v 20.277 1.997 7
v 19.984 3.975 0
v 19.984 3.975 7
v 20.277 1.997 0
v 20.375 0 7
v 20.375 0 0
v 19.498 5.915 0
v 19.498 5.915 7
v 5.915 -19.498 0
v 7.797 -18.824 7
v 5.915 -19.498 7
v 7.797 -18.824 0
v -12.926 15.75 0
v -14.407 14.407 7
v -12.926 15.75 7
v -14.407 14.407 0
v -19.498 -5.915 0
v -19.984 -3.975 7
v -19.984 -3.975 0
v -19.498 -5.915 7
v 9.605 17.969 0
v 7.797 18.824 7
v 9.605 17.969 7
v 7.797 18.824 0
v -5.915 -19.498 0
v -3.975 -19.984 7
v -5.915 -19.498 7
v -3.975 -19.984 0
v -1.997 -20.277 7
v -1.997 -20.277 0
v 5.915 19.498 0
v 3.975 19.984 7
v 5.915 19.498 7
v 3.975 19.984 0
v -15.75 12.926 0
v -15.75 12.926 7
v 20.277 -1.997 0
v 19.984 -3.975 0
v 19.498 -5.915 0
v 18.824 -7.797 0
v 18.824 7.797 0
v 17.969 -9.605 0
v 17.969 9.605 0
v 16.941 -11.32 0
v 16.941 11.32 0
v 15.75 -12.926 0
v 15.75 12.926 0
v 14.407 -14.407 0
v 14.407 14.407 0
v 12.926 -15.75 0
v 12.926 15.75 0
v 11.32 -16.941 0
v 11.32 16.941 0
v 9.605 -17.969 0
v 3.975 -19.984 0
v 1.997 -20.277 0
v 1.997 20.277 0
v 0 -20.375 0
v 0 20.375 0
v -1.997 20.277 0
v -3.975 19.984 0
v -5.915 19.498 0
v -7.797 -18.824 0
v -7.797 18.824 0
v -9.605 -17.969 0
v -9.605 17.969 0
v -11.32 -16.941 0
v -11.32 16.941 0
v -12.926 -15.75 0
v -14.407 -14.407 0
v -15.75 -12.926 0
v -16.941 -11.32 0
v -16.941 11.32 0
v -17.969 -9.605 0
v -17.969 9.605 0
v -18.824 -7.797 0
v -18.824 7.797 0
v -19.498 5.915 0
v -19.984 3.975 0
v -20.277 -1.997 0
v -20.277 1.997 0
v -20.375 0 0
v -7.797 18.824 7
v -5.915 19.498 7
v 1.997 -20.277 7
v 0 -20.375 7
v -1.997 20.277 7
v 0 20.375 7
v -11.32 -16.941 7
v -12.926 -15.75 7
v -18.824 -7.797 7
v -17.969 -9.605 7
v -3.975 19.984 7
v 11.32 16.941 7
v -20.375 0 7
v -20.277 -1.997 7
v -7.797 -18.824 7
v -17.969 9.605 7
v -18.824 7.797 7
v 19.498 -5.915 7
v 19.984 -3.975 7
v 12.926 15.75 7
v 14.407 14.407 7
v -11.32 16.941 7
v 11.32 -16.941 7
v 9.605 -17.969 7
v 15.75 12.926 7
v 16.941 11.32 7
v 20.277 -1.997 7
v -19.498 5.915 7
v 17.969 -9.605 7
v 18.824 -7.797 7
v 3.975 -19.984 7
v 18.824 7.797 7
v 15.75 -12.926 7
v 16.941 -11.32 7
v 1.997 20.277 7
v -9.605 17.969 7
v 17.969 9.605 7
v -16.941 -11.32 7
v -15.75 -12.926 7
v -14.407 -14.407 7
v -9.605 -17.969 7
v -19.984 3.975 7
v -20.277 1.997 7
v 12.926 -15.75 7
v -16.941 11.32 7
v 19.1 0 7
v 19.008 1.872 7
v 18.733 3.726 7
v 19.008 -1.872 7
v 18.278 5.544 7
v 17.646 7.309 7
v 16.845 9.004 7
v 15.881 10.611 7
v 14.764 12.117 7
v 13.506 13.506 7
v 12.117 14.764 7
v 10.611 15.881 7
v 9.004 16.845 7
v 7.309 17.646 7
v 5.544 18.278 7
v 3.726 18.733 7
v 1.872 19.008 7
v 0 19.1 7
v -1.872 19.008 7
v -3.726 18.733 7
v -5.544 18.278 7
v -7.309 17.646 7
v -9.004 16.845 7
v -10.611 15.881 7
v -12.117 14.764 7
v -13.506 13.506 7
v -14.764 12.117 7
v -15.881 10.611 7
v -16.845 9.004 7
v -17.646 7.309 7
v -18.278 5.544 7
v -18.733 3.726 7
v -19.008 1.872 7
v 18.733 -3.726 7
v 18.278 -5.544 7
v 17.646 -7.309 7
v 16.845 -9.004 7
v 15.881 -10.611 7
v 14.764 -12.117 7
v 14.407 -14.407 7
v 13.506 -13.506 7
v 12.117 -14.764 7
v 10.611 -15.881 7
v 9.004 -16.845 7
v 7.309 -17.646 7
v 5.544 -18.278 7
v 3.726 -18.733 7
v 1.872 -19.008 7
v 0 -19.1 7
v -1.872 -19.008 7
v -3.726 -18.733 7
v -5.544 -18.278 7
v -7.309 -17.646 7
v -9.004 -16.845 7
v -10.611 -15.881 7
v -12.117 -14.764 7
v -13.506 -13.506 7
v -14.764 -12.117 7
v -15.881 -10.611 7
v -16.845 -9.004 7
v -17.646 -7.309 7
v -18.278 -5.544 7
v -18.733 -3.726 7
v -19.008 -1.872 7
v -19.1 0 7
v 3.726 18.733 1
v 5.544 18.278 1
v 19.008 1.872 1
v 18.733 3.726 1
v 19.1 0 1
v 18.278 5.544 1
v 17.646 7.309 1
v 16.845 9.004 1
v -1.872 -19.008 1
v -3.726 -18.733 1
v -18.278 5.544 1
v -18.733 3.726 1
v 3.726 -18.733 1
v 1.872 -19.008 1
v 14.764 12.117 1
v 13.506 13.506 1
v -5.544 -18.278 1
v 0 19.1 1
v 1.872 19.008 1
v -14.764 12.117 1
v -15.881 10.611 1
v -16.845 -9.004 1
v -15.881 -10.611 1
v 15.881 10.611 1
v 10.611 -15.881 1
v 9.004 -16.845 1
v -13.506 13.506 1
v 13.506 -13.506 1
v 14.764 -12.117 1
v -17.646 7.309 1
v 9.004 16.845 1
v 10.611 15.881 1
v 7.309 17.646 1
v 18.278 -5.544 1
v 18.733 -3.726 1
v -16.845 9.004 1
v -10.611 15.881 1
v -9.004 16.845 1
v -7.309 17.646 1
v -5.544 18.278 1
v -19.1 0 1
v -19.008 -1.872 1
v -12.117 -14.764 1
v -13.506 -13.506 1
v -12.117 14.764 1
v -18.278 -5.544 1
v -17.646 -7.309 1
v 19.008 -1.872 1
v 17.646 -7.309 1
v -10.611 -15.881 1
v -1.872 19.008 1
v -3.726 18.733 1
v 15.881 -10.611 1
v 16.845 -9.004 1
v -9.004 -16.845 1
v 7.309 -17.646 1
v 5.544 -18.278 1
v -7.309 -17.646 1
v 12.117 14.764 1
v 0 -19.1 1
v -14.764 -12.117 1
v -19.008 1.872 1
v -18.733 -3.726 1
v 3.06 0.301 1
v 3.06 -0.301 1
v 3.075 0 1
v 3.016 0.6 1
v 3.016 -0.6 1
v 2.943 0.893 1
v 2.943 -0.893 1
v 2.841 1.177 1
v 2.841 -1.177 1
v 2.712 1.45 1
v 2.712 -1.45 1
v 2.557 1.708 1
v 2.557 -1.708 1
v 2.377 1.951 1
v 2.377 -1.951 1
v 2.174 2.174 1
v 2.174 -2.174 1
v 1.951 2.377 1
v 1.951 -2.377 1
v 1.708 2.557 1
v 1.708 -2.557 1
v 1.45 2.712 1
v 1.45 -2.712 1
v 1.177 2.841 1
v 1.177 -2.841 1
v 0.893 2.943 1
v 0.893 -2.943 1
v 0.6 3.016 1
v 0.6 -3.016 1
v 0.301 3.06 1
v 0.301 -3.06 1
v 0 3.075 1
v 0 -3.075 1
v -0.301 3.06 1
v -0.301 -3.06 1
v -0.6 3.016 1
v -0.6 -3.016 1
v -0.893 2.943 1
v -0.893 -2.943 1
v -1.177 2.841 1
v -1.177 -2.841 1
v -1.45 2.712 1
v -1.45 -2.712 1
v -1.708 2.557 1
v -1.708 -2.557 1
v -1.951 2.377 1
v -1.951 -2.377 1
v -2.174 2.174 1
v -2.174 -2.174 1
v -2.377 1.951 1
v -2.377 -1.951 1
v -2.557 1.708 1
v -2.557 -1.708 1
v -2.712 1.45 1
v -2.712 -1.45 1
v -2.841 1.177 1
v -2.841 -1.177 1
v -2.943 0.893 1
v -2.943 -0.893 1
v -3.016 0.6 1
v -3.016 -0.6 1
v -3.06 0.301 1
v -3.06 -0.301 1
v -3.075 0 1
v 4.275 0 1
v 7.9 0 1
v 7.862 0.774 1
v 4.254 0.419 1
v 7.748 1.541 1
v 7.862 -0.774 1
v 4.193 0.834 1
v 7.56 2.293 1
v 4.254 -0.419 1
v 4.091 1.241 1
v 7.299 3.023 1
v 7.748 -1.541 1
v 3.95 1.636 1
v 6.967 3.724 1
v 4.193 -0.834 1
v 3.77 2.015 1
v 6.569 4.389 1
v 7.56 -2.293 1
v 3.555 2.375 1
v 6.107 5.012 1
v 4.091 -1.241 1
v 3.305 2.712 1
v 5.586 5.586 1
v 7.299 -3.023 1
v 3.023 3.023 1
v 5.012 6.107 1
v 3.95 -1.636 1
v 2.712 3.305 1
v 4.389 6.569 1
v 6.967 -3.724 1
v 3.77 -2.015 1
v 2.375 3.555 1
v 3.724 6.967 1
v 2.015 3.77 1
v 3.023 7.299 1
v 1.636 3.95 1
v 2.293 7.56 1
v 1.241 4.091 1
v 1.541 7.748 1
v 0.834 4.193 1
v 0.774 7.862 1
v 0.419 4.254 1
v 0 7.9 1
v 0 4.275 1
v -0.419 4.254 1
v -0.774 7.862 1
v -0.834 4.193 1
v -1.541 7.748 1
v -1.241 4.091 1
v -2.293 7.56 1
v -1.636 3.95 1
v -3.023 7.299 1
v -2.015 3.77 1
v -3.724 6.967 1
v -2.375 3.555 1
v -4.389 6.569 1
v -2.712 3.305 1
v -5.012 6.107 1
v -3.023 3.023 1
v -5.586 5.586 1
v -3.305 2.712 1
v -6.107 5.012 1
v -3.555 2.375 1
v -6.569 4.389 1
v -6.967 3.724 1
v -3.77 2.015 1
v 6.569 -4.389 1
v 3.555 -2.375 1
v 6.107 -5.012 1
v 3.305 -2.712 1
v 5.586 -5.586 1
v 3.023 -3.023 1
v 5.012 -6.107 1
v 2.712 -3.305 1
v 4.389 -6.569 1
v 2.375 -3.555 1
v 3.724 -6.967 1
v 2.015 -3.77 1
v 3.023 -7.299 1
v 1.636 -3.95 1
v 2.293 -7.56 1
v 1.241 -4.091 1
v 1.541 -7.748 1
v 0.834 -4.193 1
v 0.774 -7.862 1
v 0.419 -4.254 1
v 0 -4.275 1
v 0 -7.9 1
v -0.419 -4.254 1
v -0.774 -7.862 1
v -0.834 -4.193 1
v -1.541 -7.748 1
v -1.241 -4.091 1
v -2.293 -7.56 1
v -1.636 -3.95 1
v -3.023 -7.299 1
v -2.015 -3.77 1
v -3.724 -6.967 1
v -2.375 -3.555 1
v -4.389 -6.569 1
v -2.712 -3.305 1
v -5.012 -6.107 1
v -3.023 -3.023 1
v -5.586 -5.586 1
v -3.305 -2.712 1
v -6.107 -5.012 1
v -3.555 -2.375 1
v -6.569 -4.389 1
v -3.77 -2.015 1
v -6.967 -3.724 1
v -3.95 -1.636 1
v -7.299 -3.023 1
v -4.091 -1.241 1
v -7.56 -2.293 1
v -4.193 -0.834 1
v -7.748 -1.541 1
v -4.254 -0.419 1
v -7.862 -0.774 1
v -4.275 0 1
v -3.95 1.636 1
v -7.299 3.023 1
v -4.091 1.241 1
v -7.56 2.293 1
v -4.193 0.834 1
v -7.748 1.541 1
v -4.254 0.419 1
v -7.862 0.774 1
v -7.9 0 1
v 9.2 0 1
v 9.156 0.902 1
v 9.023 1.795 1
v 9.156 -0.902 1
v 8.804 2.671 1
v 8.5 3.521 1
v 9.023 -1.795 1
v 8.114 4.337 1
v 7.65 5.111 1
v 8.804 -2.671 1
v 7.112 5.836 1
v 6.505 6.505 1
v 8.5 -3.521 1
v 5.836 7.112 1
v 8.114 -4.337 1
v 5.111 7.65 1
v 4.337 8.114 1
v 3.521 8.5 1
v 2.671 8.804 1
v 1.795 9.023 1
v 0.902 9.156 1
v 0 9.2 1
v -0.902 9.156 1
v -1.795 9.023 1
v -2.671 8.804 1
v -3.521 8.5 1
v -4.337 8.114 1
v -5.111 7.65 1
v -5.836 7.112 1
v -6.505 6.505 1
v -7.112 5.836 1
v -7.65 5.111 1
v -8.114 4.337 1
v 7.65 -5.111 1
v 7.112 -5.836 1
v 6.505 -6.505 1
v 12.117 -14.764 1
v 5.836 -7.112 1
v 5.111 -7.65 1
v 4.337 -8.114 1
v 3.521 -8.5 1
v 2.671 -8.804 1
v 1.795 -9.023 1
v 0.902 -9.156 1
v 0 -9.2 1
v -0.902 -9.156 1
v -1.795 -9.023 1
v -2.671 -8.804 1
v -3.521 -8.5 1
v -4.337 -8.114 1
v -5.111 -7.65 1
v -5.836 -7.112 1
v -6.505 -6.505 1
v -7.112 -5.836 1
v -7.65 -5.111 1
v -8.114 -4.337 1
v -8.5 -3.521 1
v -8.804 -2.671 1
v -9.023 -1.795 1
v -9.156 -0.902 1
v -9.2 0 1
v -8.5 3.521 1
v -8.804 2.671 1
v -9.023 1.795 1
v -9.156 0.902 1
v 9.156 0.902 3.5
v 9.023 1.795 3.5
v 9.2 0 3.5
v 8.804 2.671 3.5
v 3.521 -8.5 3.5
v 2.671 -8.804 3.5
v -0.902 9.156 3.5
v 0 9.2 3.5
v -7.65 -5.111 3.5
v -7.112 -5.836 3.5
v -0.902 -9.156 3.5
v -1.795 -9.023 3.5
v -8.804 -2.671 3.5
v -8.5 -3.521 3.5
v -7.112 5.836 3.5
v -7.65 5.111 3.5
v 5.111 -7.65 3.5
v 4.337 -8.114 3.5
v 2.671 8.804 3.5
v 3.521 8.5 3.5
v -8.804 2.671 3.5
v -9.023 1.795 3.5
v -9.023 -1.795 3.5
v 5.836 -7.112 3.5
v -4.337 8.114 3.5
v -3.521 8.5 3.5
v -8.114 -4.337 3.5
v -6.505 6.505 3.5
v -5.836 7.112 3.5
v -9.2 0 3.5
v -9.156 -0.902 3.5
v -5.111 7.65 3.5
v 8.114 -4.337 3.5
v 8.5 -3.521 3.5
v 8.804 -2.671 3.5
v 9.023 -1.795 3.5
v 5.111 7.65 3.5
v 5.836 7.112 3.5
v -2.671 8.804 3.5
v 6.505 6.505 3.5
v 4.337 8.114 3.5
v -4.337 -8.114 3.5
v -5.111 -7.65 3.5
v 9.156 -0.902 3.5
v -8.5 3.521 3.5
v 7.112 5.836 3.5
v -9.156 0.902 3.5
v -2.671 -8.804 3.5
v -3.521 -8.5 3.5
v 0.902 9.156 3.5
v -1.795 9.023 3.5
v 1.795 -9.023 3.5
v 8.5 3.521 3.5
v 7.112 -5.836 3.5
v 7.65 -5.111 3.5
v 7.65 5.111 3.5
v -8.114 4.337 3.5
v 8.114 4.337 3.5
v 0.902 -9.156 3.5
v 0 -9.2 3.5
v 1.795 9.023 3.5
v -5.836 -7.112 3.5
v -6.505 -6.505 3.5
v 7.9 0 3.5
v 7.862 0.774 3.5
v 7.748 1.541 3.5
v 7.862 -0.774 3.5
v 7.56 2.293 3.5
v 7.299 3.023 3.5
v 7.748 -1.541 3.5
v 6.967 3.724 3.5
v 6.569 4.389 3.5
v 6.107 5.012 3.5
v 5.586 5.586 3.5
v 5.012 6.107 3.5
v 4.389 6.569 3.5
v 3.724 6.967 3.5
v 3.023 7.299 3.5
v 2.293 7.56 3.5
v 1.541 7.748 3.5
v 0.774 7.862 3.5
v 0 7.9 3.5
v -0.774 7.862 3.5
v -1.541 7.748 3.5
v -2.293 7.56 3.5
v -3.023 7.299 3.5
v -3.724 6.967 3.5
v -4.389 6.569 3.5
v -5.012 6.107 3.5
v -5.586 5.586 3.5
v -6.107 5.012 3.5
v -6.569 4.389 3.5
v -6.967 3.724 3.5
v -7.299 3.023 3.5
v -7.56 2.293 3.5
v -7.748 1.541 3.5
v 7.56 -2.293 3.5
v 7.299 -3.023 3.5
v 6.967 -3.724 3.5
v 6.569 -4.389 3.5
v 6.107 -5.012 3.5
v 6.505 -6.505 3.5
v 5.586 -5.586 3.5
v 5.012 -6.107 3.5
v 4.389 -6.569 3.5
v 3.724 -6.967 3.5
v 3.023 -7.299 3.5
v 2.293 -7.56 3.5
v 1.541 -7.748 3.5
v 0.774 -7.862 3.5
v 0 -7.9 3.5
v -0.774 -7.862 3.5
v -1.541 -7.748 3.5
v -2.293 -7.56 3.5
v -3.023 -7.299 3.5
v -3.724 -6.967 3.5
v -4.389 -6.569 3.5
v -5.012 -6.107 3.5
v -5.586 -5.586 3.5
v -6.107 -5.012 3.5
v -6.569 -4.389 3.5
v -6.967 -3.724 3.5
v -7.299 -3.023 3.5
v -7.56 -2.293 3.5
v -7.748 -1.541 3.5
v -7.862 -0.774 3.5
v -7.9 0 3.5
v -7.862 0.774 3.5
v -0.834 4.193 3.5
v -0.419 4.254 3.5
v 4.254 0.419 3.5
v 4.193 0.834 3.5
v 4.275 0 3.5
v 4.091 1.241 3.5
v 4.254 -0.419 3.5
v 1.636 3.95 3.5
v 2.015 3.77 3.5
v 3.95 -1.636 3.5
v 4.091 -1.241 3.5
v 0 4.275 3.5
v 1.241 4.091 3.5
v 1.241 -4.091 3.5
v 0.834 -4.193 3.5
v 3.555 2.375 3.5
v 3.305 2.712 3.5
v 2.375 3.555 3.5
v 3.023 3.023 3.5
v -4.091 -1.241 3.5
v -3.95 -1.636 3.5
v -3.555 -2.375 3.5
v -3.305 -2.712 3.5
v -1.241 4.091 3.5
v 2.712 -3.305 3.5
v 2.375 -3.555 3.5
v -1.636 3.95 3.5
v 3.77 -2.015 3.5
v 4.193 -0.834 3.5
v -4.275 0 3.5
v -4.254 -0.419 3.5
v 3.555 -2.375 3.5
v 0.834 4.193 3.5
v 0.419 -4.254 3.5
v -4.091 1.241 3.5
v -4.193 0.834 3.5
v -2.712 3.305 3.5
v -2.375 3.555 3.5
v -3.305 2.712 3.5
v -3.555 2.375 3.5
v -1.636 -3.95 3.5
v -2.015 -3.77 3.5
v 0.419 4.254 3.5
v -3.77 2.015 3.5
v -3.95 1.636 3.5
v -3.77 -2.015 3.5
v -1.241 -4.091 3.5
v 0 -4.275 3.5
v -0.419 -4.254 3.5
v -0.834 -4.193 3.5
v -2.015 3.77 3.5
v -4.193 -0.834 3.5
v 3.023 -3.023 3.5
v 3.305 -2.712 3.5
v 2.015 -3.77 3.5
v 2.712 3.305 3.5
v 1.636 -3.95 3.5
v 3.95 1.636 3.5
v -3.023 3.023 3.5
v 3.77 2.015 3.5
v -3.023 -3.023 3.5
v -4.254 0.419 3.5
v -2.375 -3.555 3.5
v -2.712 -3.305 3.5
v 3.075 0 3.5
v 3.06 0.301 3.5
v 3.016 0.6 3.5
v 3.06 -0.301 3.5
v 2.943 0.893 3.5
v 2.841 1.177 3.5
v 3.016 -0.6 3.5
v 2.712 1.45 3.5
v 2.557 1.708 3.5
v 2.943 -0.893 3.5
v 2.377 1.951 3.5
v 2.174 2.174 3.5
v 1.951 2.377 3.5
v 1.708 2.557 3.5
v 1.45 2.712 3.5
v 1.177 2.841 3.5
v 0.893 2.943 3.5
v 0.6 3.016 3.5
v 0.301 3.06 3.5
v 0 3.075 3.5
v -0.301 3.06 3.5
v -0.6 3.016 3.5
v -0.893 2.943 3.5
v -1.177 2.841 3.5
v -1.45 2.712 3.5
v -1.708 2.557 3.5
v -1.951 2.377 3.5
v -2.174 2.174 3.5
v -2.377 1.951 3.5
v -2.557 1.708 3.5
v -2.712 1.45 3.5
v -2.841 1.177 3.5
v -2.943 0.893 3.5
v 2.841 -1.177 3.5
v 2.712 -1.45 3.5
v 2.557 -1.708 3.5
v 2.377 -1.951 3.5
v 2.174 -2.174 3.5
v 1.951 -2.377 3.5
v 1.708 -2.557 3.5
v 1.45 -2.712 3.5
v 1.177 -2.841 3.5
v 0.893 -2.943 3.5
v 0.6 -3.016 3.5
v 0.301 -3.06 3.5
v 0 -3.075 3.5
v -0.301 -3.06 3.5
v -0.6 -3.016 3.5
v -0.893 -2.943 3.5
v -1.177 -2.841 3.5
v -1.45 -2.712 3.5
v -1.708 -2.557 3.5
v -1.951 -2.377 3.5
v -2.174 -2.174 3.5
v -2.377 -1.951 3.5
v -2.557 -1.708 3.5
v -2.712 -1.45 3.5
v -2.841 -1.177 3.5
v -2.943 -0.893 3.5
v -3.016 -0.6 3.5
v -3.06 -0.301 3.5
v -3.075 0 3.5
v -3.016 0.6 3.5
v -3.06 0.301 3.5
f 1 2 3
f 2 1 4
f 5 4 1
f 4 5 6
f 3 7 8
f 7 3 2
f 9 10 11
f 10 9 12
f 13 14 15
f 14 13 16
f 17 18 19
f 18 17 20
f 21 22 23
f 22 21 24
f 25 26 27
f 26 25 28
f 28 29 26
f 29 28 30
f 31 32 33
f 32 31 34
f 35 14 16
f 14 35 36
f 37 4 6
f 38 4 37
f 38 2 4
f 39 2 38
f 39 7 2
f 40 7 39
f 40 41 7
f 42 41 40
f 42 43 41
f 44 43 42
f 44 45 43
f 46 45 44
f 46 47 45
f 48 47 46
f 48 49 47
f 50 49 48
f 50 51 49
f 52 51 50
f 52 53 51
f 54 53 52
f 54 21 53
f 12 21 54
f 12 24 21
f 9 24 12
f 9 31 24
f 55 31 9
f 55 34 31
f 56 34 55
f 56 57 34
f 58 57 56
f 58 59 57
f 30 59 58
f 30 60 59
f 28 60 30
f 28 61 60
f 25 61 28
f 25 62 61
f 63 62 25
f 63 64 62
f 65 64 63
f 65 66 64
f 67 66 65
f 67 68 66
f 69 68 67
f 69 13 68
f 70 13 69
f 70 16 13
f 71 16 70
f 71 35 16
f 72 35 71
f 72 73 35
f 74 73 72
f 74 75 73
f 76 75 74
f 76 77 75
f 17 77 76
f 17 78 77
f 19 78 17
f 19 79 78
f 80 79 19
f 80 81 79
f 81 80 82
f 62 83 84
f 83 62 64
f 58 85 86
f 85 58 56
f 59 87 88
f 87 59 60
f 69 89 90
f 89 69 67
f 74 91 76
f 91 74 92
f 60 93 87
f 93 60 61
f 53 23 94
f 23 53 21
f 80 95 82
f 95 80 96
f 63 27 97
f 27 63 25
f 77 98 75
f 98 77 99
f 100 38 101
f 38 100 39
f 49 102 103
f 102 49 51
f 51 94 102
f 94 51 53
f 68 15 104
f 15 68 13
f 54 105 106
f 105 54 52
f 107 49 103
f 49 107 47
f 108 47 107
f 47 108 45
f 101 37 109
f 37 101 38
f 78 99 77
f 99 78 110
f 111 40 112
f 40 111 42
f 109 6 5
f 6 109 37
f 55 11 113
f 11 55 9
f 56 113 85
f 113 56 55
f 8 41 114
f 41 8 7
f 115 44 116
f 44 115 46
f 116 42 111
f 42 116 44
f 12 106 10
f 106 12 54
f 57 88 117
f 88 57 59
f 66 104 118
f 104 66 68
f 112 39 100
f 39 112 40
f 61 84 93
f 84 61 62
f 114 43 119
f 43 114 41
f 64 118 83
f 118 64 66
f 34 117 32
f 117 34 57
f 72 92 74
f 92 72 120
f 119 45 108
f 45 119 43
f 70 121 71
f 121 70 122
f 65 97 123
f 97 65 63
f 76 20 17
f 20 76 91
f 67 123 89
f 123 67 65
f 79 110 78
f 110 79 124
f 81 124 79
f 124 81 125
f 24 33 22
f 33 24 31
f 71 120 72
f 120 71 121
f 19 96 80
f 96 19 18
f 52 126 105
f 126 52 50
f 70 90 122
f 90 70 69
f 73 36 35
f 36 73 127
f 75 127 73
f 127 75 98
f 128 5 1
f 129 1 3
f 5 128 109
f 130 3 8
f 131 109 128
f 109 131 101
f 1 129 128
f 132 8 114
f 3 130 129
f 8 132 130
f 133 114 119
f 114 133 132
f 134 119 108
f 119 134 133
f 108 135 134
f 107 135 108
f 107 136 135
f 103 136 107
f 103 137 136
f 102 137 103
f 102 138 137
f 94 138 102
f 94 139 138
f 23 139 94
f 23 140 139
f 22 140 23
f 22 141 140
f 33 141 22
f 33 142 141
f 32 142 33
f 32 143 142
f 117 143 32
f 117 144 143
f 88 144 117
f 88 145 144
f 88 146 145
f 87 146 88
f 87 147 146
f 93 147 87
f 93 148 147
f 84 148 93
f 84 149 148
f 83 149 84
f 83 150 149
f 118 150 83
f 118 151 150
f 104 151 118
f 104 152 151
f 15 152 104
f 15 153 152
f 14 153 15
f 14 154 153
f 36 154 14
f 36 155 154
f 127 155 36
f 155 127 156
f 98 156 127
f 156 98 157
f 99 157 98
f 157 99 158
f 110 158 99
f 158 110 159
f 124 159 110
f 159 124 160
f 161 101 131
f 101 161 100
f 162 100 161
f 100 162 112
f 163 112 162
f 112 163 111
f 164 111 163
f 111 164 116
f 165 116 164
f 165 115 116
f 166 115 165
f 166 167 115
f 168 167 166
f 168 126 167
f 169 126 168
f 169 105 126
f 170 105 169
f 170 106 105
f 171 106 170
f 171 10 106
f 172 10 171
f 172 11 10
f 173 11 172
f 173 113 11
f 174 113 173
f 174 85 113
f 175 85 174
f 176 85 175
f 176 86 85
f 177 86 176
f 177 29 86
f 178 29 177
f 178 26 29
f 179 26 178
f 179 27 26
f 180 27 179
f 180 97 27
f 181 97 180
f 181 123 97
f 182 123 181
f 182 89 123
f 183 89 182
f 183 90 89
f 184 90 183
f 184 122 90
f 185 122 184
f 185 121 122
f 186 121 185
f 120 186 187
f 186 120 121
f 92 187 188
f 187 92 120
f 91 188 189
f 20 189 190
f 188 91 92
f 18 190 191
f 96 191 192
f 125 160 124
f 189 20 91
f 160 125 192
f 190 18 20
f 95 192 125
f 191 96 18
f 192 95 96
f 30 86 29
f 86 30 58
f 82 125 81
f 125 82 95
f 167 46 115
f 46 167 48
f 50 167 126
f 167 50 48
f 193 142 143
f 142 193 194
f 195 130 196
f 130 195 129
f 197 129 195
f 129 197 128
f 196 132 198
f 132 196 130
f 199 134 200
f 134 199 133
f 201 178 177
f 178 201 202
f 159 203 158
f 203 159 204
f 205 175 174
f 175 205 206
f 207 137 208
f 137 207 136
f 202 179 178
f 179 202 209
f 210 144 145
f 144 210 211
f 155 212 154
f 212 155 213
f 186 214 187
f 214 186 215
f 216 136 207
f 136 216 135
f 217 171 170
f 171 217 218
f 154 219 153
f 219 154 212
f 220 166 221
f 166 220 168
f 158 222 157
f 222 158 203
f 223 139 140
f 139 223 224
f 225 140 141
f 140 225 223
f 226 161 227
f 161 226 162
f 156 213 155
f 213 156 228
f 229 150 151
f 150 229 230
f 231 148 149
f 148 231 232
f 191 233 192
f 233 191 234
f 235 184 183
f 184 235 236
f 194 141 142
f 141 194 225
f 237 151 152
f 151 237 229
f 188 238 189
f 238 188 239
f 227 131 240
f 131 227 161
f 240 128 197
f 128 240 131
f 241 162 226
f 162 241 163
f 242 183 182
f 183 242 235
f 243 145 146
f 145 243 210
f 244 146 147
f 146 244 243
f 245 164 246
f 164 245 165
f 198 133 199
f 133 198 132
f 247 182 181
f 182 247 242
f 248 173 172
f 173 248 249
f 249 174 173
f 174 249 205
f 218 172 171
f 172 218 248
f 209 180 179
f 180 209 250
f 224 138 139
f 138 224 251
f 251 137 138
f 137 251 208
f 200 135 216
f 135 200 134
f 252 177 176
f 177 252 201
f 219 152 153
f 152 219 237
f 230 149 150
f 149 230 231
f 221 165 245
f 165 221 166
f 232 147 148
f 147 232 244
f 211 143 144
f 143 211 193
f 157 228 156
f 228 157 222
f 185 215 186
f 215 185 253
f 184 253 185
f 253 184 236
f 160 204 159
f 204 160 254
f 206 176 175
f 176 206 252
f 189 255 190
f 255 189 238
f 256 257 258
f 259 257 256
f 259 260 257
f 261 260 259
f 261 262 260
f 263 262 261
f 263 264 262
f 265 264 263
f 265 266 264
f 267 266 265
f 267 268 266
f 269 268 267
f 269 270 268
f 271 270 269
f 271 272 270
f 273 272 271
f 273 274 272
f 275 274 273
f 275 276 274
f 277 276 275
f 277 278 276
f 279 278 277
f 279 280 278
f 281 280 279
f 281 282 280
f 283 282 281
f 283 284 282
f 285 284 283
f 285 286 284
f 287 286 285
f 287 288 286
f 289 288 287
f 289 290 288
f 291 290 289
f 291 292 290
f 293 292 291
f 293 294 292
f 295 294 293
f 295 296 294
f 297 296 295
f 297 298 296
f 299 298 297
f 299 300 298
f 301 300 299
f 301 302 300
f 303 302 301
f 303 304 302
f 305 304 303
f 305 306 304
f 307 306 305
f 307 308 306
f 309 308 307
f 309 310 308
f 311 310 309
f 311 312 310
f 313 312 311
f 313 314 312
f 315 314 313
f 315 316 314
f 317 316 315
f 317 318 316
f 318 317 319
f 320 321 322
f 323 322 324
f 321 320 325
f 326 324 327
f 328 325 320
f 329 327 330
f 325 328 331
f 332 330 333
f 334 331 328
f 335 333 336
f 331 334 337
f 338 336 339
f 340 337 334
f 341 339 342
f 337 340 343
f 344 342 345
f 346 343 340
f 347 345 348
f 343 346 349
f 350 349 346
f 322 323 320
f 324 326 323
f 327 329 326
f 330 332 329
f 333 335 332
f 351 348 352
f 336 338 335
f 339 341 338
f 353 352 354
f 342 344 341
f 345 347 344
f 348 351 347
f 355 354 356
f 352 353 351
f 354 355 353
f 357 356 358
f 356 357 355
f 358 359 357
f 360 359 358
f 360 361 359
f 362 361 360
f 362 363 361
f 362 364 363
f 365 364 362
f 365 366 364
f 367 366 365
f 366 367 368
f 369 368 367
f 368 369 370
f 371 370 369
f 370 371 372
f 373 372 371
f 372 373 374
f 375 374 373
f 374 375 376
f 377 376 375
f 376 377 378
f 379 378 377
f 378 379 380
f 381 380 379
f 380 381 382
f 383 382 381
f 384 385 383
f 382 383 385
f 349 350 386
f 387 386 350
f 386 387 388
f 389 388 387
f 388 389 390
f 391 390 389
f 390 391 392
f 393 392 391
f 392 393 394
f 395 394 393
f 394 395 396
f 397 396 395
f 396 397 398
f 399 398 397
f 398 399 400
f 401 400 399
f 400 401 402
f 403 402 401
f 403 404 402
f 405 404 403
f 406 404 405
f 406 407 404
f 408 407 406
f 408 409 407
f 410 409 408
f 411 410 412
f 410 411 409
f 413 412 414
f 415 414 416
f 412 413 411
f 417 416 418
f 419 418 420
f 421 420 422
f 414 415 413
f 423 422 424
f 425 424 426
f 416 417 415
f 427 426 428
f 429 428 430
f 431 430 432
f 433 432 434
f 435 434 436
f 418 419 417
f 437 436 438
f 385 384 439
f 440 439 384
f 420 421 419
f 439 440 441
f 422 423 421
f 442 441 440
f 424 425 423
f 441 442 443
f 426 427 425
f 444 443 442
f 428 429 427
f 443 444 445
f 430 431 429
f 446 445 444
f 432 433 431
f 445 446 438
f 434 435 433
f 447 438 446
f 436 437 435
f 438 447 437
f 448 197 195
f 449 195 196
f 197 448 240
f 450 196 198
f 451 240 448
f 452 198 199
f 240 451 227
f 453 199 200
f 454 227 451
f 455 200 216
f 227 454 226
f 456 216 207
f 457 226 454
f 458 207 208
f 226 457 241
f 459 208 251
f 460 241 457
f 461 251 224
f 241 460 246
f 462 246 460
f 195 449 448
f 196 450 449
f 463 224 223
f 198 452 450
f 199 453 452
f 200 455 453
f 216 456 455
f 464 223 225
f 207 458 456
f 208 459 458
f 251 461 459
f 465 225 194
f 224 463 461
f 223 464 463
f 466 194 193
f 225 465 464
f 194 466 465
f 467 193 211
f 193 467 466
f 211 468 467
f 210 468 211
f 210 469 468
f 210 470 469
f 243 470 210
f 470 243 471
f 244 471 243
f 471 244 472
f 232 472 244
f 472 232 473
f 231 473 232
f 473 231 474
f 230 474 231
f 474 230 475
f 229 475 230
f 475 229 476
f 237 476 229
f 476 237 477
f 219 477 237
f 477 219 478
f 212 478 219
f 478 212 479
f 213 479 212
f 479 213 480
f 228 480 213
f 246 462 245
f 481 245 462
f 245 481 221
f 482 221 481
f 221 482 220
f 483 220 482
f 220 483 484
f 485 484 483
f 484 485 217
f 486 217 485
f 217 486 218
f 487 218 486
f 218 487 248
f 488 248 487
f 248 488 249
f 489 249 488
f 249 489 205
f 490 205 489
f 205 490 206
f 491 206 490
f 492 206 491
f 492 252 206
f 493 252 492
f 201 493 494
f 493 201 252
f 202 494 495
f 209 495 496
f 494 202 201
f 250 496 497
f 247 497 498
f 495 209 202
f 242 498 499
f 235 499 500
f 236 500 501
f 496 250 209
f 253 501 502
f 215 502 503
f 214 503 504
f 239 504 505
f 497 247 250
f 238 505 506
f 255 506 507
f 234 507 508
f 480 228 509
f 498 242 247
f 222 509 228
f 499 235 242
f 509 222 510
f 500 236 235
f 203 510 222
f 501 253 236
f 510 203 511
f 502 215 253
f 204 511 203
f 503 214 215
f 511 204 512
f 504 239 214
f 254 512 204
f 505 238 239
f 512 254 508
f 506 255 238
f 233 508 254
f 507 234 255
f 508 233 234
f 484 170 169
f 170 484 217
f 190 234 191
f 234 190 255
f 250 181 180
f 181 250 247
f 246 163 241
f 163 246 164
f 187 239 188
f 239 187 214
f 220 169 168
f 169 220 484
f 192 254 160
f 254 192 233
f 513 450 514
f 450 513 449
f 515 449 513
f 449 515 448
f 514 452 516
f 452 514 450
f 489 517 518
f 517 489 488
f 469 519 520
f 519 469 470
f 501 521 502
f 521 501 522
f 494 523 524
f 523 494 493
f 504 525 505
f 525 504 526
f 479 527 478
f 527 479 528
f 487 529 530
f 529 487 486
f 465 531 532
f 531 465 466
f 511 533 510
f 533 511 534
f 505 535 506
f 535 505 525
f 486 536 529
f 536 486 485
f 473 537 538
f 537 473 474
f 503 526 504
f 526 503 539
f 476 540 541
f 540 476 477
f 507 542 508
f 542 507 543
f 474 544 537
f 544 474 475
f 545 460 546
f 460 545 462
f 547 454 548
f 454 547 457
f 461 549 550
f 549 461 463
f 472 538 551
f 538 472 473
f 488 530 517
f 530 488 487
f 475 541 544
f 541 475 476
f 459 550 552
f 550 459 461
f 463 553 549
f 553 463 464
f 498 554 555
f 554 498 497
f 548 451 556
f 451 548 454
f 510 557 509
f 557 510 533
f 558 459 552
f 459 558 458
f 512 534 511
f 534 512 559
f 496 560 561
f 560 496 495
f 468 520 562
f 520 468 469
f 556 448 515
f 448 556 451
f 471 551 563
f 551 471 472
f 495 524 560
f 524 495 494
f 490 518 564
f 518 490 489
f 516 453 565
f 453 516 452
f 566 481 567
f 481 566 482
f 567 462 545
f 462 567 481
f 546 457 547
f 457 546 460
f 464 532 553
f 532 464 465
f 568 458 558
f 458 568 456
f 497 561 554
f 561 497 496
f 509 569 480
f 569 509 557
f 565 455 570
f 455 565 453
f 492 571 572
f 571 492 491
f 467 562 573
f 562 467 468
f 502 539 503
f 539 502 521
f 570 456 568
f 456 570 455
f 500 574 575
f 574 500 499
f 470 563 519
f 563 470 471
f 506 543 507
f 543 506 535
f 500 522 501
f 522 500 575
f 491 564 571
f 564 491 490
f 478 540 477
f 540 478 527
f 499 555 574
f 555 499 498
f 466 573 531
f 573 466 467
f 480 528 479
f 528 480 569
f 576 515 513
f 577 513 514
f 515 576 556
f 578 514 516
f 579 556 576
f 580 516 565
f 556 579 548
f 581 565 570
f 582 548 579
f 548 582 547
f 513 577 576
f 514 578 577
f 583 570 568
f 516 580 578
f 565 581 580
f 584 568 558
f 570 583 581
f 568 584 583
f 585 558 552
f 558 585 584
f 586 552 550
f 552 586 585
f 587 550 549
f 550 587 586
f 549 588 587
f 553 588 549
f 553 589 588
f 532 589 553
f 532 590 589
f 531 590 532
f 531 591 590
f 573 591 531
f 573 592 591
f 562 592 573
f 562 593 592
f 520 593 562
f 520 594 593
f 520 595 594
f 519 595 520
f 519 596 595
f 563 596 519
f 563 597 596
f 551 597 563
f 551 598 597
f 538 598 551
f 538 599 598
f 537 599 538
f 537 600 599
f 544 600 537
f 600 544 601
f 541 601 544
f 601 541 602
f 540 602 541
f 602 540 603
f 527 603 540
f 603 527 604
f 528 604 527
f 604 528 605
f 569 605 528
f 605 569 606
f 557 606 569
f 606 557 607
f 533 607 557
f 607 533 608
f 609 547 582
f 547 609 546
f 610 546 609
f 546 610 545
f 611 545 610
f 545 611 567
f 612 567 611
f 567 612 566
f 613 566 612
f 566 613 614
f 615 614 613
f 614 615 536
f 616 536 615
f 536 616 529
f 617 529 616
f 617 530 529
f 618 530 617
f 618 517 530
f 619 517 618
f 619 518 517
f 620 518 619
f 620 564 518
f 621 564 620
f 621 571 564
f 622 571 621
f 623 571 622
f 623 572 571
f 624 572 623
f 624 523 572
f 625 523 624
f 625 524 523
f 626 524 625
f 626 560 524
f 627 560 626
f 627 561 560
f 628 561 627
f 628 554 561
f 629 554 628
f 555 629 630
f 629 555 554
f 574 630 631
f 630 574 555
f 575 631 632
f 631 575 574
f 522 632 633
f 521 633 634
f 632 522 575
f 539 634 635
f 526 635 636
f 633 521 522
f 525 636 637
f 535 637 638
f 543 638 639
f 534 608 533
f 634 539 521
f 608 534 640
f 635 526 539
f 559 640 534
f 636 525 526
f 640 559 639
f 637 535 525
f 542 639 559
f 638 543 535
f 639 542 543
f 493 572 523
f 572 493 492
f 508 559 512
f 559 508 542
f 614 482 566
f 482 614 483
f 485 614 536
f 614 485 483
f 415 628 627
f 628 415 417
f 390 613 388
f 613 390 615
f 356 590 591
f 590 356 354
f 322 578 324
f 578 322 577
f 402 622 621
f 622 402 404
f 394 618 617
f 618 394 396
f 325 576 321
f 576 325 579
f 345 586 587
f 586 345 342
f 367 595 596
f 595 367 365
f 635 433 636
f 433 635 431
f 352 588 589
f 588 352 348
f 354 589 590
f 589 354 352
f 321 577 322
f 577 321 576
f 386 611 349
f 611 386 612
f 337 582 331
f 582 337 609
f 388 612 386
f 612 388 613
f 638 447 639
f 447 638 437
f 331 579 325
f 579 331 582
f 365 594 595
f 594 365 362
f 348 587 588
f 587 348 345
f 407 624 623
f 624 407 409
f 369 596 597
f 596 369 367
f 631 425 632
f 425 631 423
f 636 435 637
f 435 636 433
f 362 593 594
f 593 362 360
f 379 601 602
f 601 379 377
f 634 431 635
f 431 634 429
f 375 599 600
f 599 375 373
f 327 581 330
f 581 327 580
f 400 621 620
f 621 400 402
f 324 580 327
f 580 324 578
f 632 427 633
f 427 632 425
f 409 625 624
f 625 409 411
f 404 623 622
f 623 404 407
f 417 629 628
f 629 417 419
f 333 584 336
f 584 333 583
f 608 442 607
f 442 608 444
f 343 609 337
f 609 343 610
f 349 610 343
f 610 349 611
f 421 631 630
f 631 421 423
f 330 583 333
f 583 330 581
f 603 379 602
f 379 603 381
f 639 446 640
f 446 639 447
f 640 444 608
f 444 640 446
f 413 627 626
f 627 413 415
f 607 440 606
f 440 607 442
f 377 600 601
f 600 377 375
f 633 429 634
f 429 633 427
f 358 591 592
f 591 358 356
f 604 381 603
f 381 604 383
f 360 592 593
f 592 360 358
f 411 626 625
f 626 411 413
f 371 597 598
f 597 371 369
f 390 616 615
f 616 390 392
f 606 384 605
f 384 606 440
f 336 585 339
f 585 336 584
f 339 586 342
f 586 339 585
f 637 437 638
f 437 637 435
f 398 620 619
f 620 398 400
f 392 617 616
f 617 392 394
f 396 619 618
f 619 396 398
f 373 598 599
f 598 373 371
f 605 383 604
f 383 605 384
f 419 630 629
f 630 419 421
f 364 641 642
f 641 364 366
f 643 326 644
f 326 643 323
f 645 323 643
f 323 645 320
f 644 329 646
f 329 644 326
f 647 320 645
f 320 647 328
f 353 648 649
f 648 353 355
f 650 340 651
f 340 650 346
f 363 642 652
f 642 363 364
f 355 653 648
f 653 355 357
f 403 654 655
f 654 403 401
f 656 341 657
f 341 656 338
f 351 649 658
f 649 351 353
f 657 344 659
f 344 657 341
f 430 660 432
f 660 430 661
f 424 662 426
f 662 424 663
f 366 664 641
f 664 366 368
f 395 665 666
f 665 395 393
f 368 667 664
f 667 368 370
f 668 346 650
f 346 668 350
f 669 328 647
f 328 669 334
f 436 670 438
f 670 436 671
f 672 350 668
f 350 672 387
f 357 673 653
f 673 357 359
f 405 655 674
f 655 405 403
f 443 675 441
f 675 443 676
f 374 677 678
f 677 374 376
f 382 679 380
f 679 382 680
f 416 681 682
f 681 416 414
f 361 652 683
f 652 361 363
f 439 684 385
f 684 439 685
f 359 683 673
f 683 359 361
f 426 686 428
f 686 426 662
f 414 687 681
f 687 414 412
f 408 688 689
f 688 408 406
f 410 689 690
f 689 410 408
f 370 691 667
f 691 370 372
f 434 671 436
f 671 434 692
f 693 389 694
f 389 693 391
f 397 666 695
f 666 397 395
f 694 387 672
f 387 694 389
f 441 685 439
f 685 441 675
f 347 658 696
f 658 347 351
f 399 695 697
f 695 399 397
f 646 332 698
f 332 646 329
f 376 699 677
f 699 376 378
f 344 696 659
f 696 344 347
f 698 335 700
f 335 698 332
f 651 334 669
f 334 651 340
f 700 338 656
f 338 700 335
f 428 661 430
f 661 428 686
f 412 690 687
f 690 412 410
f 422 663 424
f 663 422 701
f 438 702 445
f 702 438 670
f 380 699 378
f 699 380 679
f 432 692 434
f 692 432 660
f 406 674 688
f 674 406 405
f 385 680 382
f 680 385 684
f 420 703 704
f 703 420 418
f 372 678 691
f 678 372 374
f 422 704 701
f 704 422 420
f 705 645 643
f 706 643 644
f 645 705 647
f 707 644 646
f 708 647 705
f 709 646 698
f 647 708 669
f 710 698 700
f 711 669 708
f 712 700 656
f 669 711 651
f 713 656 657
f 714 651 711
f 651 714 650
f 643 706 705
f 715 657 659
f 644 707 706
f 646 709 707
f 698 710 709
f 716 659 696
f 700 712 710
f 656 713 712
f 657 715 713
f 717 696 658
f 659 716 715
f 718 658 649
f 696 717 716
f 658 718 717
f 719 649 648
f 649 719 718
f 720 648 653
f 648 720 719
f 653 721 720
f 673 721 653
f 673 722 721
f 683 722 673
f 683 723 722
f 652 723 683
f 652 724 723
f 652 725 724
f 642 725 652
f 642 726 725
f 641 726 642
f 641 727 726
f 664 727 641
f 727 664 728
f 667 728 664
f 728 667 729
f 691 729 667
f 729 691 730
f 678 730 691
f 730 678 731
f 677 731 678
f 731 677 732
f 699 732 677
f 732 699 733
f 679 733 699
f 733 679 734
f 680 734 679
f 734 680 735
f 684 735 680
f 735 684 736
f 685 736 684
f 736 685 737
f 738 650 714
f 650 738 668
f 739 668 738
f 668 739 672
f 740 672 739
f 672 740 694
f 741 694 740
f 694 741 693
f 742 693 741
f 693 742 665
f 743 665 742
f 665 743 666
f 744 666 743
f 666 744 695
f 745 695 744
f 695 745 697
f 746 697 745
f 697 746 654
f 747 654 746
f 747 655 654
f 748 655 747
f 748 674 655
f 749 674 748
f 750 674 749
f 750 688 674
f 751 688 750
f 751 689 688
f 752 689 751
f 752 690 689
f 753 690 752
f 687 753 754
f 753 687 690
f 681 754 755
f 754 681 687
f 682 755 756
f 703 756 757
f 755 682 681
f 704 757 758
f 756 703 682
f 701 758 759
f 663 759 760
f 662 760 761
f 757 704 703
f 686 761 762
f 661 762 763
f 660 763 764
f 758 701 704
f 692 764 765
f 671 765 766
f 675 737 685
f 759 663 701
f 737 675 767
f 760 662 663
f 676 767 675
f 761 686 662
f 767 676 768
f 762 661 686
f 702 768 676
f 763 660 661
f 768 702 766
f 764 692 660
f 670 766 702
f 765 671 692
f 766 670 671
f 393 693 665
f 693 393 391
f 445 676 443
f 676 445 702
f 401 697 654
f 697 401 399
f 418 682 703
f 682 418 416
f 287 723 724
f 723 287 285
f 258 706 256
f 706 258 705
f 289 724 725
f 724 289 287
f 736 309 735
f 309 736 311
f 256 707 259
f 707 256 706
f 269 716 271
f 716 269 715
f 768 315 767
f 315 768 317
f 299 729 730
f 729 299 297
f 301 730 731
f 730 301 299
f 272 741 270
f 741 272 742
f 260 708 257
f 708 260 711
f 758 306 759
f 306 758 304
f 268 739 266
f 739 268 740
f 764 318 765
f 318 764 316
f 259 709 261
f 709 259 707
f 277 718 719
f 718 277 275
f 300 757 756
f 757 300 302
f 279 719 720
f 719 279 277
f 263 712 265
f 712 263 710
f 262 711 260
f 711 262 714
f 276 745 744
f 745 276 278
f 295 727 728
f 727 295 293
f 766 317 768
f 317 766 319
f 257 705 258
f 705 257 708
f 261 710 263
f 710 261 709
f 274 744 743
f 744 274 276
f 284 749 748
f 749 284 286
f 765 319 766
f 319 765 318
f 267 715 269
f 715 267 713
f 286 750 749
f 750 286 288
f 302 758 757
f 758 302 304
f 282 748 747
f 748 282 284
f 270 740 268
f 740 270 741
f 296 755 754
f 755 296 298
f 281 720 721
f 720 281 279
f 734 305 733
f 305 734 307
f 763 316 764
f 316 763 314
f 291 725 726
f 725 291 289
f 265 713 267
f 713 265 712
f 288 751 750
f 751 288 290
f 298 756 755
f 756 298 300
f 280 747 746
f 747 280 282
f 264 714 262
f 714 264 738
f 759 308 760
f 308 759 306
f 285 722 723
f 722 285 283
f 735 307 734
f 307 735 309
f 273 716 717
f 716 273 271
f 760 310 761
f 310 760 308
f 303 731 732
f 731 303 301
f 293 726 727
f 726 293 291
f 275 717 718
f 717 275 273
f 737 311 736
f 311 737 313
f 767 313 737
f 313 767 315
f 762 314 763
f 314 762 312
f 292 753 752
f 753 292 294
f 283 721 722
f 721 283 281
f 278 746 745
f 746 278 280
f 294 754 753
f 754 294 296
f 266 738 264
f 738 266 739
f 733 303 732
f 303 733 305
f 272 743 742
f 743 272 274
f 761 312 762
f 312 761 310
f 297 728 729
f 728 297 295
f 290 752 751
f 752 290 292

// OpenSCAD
$fn = 64;
od = 40.75;
or = od / 2;
id = 38.2;
ir = id / 2;
oh = 7;
ih = 6; // ?

difference() {
    cylinder(h = oh, r = or);
    translate([0,0,oh-ih]) cylinder(h = ih+1, r = ir);
}

od2 = 18.4;
or2 = od2 / 2;
ir2 = or2 - 1.3;

difference() {
    cylinder(h = oh/2, r = or2);
    translate([0,0,oh-ih]) cylinder(h = oh/2+1, r = ir2);
}

difference() {
}

od3 = 8.55;
or3 = od3 / 2;
ir3 = or3 - 1.2;

difference() {
    cylinder(h = oh/2, r = or3);
    translate([0,0,oh-ih]) cylinder(h = oh/2+1, r = ir3);
}
